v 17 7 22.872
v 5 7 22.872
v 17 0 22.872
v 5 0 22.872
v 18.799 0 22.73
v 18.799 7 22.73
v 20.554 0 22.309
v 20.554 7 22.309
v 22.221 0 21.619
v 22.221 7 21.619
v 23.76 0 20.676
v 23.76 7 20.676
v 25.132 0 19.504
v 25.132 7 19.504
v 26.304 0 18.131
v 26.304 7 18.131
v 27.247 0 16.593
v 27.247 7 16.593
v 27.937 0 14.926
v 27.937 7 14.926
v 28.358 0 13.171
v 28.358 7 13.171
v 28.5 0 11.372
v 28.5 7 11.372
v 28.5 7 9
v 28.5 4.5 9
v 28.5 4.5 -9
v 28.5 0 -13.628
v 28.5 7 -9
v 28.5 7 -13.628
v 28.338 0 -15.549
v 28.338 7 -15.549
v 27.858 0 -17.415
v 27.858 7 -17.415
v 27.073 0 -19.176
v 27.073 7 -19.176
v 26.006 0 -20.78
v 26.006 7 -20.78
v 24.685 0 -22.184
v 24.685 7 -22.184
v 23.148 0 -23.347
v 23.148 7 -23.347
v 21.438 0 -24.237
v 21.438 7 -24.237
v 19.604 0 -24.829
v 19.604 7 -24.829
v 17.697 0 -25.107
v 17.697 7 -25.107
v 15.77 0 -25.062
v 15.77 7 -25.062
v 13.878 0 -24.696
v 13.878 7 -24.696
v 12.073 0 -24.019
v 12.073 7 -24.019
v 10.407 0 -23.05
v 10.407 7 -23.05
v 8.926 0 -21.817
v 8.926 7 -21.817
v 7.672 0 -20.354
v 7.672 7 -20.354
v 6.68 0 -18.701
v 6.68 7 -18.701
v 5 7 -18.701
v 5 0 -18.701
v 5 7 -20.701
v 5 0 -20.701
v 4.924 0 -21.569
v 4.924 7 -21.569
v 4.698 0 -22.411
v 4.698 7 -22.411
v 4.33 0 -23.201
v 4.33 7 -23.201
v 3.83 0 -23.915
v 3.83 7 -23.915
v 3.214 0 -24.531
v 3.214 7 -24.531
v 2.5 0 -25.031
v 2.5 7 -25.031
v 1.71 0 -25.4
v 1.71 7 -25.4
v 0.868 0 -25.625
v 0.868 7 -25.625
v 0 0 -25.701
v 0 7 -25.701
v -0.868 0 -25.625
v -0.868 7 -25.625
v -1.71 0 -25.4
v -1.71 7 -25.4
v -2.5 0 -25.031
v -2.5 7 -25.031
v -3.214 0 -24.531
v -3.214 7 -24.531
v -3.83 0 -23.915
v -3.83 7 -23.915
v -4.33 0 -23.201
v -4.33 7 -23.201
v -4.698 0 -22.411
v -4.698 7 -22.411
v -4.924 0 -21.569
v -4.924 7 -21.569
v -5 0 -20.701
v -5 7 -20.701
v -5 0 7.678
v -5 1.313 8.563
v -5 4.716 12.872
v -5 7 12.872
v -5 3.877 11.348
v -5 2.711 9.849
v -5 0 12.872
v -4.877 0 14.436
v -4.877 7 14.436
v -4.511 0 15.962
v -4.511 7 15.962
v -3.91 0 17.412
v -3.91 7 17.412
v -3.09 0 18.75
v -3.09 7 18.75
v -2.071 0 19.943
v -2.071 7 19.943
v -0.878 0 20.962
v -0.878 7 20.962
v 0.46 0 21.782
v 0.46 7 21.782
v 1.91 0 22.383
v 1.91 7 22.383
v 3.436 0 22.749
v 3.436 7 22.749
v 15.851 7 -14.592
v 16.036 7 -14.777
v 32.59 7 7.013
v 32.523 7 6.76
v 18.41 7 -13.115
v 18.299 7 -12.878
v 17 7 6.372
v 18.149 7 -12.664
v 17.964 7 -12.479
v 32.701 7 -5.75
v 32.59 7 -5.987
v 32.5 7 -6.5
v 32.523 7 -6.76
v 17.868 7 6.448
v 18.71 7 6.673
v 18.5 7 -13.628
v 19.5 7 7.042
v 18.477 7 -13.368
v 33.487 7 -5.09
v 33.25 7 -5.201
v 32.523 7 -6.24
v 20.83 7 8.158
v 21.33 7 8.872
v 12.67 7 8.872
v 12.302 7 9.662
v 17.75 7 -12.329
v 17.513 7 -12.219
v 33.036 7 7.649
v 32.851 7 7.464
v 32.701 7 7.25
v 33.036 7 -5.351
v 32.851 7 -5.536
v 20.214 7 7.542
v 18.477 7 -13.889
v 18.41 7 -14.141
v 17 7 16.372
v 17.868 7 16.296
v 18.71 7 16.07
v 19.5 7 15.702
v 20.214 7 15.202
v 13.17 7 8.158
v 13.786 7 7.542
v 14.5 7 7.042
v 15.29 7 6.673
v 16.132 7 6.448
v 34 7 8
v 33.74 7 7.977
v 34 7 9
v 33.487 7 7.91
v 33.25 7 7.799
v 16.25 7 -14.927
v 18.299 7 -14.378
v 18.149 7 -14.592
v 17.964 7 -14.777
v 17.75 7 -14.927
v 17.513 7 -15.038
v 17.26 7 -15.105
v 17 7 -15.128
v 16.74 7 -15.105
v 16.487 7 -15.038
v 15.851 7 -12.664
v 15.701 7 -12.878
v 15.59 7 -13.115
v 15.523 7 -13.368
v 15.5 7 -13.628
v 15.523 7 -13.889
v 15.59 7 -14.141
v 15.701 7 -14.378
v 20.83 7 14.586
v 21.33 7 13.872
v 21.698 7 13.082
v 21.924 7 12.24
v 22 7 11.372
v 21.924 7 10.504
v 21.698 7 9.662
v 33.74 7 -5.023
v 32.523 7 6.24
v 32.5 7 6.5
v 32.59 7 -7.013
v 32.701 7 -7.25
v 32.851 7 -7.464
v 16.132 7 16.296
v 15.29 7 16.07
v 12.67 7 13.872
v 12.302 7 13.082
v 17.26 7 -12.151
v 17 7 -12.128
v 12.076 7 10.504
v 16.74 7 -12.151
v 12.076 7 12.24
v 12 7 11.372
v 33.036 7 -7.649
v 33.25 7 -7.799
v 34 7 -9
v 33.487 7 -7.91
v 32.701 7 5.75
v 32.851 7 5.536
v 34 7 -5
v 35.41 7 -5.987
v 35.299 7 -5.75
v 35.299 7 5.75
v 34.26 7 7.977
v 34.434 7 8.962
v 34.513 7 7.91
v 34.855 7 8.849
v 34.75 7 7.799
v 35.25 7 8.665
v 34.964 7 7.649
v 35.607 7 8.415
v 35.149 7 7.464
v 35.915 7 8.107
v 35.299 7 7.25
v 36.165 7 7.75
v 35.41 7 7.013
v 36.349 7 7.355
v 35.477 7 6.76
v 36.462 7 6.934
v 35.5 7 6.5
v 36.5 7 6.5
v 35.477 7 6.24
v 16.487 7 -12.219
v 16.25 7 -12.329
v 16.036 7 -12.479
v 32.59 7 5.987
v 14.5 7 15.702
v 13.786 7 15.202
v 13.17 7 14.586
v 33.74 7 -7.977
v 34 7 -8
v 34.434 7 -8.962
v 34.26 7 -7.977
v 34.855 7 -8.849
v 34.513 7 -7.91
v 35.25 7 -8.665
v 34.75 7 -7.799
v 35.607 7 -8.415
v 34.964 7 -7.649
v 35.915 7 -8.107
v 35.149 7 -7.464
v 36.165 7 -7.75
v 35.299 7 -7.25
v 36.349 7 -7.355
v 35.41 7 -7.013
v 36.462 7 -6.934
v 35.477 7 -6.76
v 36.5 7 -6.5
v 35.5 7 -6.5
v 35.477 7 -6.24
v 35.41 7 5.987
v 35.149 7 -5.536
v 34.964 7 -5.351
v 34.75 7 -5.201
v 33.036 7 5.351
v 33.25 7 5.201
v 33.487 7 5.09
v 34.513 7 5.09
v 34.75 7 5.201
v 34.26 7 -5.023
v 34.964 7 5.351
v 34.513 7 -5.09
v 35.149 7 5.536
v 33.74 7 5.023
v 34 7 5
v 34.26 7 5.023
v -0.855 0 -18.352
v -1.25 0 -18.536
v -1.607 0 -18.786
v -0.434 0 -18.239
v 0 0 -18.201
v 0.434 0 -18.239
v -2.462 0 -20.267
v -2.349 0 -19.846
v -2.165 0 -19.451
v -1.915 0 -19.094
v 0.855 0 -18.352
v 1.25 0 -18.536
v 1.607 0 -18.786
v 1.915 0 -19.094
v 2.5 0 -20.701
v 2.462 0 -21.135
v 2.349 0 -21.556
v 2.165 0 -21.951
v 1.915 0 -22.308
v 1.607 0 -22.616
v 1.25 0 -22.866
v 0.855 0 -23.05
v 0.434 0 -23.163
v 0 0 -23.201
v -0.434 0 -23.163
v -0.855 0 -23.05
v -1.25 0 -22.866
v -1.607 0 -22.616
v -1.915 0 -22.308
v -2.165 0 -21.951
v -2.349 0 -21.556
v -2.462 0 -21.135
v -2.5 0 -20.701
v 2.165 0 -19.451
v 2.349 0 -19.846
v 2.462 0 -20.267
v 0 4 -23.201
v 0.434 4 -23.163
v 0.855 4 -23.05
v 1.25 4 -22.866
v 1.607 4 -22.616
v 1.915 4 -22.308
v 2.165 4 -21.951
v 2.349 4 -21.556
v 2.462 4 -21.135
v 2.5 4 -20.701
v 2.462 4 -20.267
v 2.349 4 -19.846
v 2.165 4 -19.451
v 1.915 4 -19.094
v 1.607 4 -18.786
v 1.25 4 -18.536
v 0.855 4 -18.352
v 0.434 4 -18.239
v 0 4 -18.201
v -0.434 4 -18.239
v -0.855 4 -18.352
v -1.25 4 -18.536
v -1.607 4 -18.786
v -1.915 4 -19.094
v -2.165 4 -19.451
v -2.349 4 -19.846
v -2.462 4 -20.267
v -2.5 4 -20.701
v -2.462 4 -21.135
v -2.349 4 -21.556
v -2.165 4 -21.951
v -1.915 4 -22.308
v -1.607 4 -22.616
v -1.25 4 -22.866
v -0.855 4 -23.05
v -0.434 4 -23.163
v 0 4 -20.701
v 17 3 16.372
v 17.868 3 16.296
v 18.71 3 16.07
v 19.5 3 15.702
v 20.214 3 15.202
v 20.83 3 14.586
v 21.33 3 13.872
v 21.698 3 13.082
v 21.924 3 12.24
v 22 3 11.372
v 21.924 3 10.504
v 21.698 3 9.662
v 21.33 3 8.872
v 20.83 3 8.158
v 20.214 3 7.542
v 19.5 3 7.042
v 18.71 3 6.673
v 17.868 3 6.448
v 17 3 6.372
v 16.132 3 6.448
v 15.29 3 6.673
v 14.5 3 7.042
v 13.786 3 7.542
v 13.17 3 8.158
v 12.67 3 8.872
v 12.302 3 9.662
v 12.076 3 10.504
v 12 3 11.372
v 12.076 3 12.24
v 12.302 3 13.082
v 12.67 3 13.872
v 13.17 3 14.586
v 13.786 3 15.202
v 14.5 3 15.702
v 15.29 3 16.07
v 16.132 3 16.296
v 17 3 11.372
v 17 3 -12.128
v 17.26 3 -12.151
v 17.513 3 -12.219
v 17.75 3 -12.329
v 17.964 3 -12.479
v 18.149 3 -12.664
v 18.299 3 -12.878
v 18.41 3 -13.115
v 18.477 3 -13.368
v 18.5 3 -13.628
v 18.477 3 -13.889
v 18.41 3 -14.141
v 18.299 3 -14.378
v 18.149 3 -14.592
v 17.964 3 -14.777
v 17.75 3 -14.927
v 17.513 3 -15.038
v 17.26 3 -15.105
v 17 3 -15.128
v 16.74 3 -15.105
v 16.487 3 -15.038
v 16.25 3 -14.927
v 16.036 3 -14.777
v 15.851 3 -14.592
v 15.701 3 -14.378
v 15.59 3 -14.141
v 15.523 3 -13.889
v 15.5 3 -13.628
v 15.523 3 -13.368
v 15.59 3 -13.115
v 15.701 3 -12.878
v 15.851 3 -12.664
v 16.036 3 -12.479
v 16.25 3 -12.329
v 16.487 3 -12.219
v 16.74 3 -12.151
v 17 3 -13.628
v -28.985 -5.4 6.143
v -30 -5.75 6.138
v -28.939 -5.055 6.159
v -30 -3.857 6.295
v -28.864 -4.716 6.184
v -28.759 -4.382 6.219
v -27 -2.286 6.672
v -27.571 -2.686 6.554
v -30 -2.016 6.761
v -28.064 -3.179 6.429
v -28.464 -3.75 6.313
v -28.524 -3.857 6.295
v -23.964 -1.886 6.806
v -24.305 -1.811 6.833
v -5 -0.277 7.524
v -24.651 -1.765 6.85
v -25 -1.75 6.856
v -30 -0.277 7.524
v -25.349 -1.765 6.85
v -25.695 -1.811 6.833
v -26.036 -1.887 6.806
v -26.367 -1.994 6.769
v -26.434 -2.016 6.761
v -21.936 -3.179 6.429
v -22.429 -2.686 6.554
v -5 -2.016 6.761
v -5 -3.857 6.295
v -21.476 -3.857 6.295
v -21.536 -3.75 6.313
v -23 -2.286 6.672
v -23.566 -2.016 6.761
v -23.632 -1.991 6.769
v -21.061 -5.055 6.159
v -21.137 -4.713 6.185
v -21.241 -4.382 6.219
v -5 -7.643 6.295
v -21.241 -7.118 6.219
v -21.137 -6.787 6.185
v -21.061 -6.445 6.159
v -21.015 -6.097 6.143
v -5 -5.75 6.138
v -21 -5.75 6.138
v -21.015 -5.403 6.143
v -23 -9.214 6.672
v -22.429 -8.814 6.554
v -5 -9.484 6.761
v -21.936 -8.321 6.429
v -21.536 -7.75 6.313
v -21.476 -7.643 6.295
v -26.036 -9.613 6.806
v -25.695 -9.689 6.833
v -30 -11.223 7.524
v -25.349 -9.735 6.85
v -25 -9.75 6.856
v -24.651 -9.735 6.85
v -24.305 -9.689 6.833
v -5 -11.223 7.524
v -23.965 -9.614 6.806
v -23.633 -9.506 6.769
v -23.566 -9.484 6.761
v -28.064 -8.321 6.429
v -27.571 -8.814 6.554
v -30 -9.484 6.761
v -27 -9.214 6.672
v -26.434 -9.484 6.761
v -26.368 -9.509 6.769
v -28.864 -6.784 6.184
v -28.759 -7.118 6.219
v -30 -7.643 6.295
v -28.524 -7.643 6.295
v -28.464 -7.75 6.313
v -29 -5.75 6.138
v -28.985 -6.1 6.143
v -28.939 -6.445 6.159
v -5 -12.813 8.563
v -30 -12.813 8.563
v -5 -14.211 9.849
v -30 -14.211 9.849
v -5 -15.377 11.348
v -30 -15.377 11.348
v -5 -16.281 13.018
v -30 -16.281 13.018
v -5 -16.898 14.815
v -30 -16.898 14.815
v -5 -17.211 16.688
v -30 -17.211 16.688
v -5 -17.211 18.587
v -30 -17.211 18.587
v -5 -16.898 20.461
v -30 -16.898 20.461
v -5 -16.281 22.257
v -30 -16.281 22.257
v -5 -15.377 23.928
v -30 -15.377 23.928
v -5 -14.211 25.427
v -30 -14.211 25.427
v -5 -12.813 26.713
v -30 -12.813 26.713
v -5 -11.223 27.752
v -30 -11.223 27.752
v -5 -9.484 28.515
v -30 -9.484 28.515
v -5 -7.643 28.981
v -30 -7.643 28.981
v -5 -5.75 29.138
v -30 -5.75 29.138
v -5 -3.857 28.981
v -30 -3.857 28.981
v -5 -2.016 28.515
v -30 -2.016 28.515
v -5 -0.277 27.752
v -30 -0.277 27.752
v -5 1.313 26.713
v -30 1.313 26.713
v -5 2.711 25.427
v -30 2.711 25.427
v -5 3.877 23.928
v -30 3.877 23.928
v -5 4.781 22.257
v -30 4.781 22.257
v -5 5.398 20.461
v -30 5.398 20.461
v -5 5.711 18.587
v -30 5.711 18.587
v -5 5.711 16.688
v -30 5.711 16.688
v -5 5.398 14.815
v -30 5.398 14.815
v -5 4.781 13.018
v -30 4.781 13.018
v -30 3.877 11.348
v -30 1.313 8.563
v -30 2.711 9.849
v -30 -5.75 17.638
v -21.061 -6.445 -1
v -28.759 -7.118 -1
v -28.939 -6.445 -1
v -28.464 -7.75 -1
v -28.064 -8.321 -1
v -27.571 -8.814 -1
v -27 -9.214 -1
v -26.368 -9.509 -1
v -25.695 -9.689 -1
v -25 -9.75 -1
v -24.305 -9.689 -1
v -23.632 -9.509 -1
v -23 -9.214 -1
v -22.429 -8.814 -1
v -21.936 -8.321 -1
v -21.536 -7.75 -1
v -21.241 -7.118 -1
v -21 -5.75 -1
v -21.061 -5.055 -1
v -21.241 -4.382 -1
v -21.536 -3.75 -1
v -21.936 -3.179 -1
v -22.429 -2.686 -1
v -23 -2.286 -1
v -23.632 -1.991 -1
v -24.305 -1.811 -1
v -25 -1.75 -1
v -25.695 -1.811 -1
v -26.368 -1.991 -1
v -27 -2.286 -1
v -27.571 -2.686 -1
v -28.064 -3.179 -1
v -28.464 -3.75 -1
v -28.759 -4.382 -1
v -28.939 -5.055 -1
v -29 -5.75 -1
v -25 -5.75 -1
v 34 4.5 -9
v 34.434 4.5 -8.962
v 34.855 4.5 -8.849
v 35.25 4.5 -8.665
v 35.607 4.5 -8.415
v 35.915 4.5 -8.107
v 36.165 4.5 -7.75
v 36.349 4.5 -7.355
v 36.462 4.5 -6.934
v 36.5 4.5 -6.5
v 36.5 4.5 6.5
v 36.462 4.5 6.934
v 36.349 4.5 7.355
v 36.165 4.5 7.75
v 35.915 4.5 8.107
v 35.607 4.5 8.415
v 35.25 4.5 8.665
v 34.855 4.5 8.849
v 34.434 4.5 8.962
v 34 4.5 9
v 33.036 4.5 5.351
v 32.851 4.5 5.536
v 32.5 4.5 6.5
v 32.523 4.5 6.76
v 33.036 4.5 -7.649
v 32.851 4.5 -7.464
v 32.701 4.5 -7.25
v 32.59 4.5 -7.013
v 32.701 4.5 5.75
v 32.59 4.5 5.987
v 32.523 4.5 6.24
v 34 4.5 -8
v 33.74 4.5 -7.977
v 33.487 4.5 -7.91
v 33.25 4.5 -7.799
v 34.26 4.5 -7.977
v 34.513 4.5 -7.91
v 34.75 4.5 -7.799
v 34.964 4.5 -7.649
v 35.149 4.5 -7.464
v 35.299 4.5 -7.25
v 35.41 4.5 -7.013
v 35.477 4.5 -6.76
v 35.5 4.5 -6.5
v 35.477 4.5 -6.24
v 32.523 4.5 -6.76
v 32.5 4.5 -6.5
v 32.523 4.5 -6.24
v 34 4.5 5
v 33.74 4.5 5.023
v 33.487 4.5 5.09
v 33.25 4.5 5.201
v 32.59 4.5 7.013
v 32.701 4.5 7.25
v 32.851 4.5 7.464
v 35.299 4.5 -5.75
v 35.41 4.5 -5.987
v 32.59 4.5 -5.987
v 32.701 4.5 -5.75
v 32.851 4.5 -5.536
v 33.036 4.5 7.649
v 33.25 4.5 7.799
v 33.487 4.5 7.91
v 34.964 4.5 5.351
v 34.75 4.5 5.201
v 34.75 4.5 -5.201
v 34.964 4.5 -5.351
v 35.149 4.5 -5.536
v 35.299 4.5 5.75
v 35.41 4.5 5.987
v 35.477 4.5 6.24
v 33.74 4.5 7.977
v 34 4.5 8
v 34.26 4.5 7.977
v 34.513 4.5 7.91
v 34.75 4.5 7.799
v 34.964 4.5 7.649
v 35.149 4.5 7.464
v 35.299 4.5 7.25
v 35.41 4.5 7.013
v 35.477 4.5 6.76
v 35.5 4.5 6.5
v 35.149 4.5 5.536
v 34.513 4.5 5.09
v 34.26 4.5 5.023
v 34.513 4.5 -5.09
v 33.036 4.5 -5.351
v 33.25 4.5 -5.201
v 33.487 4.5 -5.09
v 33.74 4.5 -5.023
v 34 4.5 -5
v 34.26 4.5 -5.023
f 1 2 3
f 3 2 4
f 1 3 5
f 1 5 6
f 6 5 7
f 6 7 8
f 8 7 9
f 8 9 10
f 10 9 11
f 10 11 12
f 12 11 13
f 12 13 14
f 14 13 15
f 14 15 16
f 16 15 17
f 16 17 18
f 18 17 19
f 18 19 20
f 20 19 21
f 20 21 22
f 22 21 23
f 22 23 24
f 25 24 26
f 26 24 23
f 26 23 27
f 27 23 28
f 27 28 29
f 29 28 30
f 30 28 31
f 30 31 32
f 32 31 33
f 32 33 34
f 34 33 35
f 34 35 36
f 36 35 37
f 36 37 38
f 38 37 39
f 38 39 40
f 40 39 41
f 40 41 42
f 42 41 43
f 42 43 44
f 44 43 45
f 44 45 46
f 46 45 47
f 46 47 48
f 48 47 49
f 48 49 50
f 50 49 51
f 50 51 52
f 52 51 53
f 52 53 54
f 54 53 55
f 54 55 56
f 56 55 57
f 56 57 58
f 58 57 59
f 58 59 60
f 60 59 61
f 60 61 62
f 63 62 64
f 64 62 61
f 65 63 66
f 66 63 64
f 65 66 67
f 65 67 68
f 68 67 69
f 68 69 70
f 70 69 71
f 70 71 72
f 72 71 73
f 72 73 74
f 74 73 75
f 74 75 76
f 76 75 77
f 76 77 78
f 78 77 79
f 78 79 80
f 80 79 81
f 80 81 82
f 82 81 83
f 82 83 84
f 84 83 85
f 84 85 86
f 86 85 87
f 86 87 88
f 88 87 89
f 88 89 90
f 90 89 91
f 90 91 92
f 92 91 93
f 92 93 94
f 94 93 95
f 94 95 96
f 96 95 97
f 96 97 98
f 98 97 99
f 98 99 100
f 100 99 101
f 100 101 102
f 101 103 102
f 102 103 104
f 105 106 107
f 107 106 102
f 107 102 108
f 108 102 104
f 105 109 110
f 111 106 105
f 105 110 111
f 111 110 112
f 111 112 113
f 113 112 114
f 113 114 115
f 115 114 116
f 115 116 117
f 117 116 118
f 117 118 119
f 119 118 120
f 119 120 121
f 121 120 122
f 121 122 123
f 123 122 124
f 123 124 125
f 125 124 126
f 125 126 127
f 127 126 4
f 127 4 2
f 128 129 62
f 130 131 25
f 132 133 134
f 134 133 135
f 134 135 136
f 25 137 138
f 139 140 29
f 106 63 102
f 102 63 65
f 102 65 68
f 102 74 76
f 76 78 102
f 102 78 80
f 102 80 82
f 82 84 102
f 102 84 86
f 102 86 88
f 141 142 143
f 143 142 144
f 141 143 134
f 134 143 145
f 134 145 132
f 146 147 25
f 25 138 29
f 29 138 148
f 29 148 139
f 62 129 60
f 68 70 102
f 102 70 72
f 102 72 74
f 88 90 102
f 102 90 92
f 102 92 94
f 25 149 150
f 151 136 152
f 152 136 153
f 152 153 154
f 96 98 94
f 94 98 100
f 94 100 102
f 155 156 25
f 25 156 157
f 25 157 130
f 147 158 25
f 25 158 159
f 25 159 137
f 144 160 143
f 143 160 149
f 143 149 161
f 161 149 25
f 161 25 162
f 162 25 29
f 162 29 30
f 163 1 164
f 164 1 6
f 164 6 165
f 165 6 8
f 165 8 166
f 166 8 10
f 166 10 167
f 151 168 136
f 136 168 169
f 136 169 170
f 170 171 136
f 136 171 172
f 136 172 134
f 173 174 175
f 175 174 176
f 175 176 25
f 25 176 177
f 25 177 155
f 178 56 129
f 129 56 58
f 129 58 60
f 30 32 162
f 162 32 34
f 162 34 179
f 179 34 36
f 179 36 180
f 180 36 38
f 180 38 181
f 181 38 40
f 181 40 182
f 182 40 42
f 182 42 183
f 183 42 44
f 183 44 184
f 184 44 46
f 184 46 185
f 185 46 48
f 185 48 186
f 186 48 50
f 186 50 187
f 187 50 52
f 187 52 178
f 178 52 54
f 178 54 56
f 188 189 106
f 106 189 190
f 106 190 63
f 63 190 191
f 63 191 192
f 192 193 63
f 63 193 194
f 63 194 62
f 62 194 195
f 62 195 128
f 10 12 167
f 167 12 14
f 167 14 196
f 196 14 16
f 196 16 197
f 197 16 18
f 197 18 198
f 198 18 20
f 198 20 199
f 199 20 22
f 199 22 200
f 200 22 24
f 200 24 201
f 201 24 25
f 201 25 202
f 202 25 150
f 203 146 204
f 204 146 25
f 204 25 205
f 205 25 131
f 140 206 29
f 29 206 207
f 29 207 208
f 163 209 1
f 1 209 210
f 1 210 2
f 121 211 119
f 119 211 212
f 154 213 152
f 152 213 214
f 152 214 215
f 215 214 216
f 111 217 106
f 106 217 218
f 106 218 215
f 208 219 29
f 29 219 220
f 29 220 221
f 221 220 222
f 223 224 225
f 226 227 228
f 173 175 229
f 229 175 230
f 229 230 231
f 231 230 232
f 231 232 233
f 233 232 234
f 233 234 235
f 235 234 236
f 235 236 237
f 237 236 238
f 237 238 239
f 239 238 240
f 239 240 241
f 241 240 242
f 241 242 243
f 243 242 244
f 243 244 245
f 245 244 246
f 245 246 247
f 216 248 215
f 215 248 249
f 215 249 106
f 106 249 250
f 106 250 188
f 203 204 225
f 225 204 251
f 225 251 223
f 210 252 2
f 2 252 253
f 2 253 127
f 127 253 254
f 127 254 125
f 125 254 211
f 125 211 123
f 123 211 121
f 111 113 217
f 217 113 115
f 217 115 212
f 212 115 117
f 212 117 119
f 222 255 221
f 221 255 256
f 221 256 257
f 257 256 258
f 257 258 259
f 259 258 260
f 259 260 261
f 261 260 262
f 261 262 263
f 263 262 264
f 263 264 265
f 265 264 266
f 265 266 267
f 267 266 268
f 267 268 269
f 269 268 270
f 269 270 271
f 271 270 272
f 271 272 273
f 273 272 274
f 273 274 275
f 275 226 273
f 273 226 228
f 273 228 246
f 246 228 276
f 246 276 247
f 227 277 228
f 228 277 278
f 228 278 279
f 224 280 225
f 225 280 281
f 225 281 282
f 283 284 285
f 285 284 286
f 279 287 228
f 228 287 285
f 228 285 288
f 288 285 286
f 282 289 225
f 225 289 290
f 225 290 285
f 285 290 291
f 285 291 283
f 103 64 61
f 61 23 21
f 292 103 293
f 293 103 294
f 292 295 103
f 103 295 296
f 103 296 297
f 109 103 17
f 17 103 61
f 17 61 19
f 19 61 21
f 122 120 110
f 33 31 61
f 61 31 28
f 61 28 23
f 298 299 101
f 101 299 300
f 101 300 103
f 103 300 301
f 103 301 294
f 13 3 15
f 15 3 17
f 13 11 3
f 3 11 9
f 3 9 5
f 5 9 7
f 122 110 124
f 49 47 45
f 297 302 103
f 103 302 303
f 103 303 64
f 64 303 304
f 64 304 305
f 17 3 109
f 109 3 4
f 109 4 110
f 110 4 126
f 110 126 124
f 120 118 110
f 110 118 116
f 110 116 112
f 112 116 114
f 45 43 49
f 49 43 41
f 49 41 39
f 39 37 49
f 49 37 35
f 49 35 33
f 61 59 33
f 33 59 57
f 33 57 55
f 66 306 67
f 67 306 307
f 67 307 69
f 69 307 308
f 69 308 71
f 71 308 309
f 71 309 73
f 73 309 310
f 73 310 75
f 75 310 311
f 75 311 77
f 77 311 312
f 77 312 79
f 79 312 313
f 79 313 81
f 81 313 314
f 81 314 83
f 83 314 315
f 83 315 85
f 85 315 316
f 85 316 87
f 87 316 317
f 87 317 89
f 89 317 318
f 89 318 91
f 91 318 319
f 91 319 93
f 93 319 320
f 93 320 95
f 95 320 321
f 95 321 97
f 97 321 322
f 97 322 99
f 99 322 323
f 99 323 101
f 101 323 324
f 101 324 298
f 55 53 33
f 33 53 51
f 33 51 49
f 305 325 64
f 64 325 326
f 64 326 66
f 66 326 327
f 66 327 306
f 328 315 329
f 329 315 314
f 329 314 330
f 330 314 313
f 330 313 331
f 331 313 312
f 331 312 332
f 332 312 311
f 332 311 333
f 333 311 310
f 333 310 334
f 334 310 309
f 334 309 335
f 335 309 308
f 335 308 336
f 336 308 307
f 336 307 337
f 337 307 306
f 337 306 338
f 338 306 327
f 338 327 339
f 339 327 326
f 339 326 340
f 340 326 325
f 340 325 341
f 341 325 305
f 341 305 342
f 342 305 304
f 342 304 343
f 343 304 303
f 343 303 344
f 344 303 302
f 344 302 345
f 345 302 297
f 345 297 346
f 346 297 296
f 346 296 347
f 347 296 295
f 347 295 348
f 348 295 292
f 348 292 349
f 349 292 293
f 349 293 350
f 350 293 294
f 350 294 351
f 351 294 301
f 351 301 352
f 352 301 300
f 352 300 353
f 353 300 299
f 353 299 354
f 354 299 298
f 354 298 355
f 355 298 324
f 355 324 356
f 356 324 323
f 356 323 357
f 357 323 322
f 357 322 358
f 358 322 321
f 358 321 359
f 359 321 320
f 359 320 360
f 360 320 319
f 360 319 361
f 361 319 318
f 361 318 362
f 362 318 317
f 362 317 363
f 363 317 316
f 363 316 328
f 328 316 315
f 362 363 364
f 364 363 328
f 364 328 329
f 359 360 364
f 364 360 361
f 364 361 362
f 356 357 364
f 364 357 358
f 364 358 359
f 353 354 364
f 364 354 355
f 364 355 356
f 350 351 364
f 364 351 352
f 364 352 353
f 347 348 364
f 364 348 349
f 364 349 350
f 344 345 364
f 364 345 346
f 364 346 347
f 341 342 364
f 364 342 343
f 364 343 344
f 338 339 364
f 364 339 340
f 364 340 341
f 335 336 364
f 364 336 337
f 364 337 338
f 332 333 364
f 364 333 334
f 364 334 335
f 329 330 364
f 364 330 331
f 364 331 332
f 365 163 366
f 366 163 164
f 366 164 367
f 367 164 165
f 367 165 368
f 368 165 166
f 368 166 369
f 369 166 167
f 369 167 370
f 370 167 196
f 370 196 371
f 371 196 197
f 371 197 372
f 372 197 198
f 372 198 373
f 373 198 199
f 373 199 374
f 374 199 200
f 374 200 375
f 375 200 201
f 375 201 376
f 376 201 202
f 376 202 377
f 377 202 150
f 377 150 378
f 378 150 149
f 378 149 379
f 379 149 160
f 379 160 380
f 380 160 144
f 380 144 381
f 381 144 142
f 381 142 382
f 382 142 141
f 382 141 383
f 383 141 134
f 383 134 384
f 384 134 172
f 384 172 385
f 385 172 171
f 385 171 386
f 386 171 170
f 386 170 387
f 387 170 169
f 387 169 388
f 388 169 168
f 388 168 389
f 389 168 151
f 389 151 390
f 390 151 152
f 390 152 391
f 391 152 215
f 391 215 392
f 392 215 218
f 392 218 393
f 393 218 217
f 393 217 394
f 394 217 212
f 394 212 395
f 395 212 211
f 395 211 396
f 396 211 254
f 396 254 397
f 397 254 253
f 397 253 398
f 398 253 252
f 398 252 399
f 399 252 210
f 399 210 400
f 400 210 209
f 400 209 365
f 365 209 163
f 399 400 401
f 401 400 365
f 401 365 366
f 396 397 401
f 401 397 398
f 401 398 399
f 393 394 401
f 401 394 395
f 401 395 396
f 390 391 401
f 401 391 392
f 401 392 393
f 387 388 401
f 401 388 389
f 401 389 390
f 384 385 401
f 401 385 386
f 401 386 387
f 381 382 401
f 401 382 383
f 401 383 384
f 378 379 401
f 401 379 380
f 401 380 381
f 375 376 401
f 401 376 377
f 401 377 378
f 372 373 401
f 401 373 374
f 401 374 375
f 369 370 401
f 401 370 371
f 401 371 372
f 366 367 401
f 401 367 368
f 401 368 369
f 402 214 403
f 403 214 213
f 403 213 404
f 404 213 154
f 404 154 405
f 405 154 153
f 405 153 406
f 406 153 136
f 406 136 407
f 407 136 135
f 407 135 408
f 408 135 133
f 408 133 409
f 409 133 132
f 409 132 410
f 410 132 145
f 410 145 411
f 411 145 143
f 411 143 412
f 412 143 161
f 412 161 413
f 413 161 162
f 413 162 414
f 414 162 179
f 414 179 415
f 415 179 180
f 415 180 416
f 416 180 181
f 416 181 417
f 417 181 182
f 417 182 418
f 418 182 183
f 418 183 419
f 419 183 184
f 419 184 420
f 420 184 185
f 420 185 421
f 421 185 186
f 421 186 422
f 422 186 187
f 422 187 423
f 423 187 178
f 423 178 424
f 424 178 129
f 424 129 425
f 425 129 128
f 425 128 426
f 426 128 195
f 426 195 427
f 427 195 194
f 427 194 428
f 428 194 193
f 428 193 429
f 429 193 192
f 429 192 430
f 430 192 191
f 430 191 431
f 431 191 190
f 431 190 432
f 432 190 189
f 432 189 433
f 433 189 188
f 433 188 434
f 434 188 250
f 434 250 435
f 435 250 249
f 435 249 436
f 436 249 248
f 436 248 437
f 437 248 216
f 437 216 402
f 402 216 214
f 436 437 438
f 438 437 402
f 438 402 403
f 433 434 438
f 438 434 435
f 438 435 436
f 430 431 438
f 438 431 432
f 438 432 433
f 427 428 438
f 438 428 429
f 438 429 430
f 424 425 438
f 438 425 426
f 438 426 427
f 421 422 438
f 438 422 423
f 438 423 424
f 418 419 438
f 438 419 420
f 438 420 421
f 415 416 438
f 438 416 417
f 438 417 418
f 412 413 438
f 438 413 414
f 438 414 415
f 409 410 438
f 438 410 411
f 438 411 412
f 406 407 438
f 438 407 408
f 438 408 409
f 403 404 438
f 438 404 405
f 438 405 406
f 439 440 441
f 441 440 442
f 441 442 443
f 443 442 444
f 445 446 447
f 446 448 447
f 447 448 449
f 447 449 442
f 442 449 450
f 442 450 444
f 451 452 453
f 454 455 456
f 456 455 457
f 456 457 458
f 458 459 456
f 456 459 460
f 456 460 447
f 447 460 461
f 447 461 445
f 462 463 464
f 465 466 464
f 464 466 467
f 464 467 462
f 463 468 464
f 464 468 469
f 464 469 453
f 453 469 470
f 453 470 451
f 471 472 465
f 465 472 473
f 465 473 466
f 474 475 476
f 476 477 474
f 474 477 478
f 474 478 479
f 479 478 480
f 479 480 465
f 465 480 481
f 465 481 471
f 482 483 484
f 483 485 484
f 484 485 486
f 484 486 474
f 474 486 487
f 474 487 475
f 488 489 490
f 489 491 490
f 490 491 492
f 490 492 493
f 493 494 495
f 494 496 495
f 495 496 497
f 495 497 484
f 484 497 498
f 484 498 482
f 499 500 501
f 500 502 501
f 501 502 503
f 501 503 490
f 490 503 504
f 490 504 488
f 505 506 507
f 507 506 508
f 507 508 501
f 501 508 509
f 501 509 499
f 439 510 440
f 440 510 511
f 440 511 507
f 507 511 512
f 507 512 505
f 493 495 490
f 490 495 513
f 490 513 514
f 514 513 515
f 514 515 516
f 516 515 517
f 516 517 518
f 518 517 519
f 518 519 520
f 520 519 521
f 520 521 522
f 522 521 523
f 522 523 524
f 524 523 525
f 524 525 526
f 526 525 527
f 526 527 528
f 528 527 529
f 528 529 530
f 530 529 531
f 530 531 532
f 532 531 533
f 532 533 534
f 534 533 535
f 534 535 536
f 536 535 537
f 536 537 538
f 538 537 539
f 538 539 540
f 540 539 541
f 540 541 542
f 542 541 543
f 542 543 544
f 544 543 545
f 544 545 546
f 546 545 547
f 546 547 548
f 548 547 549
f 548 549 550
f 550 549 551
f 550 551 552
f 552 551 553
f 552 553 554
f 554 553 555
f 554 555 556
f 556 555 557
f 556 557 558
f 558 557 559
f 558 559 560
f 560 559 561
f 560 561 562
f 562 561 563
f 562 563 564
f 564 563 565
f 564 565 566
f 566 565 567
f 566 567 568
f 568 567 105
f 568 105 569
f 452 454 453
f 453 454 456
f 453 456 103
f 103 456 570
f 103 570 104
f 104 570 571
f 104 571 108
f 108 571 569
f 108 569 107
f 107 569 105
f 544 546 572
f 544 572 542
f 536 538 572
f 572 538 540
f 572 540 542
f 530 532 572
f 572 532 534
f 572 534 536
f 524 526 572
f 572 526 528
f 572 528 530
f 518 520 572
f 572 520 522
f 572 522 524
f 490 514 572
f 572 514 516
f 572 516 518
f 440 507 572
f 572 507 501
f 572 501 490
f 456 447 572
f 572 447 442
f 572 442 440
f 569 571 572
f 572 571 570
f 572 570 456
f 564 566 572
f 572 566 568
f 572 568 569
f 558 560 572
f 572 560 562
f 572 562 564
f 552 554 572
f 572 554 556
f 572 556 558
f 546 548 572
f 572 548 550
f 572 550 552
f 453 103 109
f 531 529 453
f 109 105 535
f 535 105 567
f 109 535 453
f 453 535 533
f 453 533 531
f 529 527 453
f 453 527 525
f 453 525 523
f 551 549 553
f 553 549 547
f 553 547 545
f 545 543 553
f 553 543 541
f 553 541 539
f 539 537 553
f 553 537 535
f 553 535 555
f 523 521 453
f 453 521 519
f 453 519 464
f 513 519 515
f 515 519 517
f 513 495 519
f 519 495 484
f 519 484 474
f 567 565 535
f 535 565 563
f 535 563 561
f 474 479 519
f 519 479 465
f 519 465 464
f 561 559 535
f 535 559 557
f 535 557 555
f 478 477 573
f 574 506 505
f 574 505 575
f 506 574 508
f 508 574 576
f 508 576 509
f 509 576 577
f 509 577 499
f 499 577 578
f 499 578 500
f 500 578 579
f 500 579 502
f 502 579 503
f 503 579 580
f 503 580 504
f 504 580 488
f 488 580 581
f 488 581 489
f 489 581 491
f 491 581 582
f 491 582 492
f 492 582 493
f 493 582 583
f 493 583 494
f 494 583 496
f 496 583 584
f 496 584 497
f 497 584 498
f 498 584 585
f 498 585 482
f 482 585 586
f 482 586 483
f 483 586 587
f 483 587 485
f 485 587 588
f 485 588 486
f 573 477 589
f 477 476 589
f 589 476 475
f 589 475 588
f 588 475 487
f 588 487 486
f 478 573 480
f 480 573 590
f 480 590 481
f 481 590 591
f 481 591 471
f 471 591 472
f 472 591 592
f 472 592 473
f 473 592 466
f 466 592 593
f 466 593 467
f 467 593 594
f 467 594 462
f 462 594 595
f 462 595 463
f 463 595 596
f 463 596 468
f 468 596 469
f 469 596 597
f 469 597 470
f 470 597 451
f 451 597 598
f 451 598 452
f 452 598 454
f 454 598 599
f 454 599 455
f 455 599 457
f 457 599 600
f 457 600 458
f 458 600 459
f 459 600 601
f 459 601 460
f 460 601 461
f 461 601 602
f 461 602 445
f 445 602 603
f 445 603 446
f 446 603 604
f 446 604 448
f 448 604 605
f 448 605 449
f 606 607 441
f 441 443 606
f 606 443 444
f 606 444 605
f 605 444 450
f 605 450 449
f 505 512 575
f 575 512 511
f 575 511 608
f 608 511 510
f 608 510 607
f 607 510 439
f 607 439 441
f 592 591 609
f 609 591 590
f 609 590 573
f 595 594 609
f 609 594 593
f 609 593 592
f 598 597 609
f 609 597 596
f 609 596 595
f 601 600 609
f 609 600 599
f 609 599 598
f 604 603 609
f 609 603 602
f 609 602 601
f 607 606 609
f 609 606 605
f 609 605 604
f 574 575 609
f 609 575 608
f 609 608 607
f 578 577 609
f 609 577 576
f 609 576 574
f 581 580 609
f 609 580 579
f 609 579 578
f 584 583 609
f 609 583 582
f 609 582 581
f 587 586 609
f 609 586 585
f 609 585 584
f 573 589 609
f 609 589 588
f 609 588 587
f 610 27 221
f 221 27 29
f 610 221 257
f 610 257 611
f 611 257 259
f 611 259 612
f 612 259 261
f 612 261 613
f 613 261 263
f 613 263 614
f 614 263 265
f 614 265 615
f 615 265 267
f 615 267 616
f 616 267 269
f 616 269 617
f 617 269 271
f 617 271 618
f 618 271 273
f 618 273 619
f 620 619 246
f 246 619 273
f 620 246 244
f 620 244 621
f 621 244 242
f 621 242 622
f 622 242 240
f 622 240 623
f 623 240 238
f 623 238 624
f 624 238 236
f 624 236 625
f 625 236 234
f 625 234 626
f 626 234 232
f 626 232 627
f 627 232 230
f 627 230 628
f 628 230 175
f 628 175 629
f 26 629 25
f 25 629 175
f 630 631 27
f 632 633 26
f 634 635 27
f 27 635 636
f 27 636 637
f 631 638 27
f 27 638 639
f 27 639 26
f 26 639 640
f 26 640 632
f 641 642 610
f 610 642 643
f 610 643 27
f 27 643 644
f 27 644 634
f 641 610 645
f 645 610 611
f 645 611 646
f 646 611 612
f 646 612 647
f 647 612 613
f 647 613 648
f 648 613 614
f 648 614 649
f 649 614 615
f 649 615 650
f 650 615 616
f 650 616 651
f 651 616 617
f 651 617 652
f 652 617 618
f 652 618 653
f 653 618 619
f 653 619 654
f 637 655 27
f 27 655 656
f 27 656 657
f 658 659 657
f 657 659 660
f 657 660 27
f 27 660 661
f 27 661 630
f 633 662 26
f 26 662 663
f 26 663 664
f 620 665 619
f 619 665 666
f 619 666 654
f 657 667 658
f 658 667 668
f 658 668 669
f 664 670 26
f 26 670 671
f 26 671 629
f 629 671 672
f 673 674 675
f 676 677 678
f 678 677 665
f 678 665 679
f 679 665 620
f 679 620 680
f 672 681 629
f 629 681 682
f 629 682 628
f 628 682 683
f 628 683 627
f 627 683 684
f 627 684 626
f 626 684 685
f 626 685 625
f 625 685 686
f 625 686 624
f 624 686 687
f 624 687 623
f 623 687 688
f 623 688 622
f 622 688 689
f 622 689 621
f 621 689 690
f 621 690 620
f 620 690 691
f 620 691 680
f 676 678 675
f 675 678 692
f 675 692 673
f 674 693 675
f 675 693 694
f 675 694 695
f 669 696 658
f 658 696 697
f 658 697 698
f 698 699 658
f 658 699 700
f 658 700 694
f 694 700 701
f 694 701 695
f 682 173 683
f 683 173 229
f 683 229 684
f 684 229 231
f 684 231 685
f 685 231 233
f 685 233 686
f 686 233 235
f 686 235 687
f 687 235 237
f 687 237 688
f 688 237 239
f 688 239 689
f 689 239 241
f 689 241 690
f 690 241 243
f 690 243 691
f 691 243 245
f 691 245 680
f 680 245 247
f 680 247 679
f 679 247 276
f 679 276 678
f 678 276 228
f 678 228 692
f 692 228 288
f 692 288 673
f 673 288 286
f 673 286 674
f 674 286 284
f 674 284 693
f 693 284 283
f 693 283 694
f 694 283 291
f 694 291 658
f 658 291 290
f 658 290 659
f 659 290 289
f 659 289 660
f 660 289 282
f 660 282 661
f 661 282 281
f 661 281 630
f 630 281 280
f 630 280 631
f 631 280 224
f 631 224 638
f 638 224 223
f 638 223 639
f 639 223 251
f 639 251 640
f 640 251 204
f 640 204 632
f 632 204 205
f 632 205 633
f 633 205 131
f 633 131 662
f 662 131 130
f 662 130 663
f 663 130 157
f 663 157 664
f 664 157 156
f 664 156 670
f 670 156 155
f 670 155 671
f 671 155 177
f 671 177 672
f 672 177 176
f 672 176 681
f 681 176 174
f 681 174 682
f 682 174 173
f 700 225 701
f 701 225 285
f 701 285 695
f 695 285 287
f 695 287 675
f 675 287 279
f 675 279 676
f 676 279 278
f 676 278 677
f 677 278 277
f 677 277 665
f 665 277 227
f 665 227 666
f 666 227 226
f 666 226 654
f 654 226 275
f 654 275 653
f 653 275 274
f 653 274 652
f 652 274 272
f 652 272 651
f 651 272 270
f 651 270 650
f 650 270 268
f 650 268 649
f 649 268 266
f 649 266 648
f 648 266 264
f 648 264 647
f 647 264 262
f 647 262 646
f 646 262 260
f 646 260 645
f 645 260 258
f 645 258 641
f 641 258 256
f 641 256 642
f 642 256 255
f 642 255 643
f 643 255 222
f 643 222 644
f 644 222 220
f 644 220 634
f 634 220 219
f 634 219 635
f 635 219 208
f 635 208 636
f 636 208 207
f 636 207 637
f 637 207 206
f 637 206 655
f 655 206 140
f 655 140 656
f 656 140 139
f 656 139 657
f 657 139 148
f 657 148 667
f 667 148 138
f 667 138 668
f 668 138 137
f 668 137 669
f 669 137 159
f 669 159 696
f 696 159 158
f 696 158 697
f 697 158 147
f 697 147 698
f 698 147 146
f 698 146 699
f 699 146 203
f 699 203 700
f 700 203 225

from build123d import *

# Parameters (mm, degrees)
BOSS_EXTRUDE1_DEPTH = 7
SKETCH2_R           = 2.5
CUT_EXTRUDE1_DEPTH  = 4
SKETCH3_R           = 1.5
SKETCH3_R_2         = 5
CUT_EXTRUDE2_DEPTH  = 4
SKETCH4_R           = 11.5
BOSS_EXTRUDE2_DEPTH = 25
SKETCH5_R           = 4
BOSS_EXTRUDE3_DEPTH = 11
SKETCH6_R           = 1.5
BOSS_EXTRUDE4_DEPTH = 2.5


with BuildPart() as part:
    # Sketch1 → Boss-Extrude1 (new body)
    with BuildSketch(Plane(origin=(0, 0, 0), x_dir=(1, 0, 0), z_dir=(0, 1, 0))):
        with BuildLine():
            Line((28.5, 13.628059387), (28.5, -11.371940613))
            ThreePointArc((28.5, -11.371940613), (25.131727984, -19.503668597), (17, -22.871940613))
            Line((17, -22.871940613), (5, -22.871940613))
            ThreePointArc((5, -22.871940613), (-2.071067812, -19.943008425), (-5, -12.871940613))
            Line((-5, -12.871940613), (-5, 20.70125692))
            ThreePointArc((-5, 20.70125692), (0, 25.70125692), (5, 20.70125692))
            Line((5, 20.70125692), (5, 18.70125692))
            Line((5, 18.70125692), (6.67950259, 18.70125692))
            ThreePointArc((6.67950259, 18.70125692), (19.604254191, 24.829303072), (28.5, 13.628059387))
        make_face()
    extrude(amount=BOSS_EXTRUDE1_DEPTH)

    # Sketch2 → Cut-Extrude1 (cut)
    with BuildSketch(Plane.XZ):
        with Locations((0, -20.70125692)):
            Circle(SKETCH2_R)
    extrude(amount=-CUT_EXTRUDE1_DEPTH, mode=Mode.SUBTRACT)

    # Sketch3 → Cut-Extrude2 (cut)
    with BuildSketch(Plane(origin=(0, 7, 0), x_dir=(1, 0, 0), z_dir=(0, 1, 0))):
        with Locations((17, 13.628059387)):
            Circle(SKETCH3_R)
        with Locations((17, -11.371940613)):
            Circle(SKETCH3_R_2)
    extrude(amount=-CUT_EXTRUDE2_DEPTH, mode=Mode.SUBTRACT)

    # Sketch4 → Boss-Extrude2 (add)
    with BuildSketch(Plane.ZY.offset(5)):
        with Locations((17.637770726, -5.75)):
            Circle(SKETCH4_R)
    extrude(amount=BOSS_EXTRUDE2_DEPTH)

    # Sketch5 → Boss-Extrude3 (add)
    with BuildSketch(Plane.XY.offset(10)):
        with Locations((-25, -5.75)):
            Circle(SKETCH5_R)
    extrude(amount=-BOSS_EXTRUDE3_DEPTH)

    # Sketch6 → Boss-Extrude4 (add)
    with BuildSketch(Plane(origin=(0, 7, 0), x_dir=(1, 0, 0), z_dir=(0, 1, 0))):
        with BuildLine():
            Line((28.5, 9), (34, 9))
            ThreePointArc((34, 9), (35.767766953, 8.267766953), (36.5, 6.5))
            Line((36.5, 6.5), (36.5, -6.5))
            ThreePointArc((36.5, -6.5), (35.767766953, -8.267766953), (34, -9))
            Line((34, -9), (28.5, -9))
            Line((28.5, -9), (28.5, 9))
        make_face()
        with Locations((34, -6.5)):
            Circle(SKETCH6_R, mode=Mode.SUBTRACT)
        with Locations((34, 6.5)):
            Circle(SKETCH6_R, mode=Mode.SUBTRACT)
    extrude(amount=-BOSS_EXTRUDE4_DEPTH)


solid = part.part
